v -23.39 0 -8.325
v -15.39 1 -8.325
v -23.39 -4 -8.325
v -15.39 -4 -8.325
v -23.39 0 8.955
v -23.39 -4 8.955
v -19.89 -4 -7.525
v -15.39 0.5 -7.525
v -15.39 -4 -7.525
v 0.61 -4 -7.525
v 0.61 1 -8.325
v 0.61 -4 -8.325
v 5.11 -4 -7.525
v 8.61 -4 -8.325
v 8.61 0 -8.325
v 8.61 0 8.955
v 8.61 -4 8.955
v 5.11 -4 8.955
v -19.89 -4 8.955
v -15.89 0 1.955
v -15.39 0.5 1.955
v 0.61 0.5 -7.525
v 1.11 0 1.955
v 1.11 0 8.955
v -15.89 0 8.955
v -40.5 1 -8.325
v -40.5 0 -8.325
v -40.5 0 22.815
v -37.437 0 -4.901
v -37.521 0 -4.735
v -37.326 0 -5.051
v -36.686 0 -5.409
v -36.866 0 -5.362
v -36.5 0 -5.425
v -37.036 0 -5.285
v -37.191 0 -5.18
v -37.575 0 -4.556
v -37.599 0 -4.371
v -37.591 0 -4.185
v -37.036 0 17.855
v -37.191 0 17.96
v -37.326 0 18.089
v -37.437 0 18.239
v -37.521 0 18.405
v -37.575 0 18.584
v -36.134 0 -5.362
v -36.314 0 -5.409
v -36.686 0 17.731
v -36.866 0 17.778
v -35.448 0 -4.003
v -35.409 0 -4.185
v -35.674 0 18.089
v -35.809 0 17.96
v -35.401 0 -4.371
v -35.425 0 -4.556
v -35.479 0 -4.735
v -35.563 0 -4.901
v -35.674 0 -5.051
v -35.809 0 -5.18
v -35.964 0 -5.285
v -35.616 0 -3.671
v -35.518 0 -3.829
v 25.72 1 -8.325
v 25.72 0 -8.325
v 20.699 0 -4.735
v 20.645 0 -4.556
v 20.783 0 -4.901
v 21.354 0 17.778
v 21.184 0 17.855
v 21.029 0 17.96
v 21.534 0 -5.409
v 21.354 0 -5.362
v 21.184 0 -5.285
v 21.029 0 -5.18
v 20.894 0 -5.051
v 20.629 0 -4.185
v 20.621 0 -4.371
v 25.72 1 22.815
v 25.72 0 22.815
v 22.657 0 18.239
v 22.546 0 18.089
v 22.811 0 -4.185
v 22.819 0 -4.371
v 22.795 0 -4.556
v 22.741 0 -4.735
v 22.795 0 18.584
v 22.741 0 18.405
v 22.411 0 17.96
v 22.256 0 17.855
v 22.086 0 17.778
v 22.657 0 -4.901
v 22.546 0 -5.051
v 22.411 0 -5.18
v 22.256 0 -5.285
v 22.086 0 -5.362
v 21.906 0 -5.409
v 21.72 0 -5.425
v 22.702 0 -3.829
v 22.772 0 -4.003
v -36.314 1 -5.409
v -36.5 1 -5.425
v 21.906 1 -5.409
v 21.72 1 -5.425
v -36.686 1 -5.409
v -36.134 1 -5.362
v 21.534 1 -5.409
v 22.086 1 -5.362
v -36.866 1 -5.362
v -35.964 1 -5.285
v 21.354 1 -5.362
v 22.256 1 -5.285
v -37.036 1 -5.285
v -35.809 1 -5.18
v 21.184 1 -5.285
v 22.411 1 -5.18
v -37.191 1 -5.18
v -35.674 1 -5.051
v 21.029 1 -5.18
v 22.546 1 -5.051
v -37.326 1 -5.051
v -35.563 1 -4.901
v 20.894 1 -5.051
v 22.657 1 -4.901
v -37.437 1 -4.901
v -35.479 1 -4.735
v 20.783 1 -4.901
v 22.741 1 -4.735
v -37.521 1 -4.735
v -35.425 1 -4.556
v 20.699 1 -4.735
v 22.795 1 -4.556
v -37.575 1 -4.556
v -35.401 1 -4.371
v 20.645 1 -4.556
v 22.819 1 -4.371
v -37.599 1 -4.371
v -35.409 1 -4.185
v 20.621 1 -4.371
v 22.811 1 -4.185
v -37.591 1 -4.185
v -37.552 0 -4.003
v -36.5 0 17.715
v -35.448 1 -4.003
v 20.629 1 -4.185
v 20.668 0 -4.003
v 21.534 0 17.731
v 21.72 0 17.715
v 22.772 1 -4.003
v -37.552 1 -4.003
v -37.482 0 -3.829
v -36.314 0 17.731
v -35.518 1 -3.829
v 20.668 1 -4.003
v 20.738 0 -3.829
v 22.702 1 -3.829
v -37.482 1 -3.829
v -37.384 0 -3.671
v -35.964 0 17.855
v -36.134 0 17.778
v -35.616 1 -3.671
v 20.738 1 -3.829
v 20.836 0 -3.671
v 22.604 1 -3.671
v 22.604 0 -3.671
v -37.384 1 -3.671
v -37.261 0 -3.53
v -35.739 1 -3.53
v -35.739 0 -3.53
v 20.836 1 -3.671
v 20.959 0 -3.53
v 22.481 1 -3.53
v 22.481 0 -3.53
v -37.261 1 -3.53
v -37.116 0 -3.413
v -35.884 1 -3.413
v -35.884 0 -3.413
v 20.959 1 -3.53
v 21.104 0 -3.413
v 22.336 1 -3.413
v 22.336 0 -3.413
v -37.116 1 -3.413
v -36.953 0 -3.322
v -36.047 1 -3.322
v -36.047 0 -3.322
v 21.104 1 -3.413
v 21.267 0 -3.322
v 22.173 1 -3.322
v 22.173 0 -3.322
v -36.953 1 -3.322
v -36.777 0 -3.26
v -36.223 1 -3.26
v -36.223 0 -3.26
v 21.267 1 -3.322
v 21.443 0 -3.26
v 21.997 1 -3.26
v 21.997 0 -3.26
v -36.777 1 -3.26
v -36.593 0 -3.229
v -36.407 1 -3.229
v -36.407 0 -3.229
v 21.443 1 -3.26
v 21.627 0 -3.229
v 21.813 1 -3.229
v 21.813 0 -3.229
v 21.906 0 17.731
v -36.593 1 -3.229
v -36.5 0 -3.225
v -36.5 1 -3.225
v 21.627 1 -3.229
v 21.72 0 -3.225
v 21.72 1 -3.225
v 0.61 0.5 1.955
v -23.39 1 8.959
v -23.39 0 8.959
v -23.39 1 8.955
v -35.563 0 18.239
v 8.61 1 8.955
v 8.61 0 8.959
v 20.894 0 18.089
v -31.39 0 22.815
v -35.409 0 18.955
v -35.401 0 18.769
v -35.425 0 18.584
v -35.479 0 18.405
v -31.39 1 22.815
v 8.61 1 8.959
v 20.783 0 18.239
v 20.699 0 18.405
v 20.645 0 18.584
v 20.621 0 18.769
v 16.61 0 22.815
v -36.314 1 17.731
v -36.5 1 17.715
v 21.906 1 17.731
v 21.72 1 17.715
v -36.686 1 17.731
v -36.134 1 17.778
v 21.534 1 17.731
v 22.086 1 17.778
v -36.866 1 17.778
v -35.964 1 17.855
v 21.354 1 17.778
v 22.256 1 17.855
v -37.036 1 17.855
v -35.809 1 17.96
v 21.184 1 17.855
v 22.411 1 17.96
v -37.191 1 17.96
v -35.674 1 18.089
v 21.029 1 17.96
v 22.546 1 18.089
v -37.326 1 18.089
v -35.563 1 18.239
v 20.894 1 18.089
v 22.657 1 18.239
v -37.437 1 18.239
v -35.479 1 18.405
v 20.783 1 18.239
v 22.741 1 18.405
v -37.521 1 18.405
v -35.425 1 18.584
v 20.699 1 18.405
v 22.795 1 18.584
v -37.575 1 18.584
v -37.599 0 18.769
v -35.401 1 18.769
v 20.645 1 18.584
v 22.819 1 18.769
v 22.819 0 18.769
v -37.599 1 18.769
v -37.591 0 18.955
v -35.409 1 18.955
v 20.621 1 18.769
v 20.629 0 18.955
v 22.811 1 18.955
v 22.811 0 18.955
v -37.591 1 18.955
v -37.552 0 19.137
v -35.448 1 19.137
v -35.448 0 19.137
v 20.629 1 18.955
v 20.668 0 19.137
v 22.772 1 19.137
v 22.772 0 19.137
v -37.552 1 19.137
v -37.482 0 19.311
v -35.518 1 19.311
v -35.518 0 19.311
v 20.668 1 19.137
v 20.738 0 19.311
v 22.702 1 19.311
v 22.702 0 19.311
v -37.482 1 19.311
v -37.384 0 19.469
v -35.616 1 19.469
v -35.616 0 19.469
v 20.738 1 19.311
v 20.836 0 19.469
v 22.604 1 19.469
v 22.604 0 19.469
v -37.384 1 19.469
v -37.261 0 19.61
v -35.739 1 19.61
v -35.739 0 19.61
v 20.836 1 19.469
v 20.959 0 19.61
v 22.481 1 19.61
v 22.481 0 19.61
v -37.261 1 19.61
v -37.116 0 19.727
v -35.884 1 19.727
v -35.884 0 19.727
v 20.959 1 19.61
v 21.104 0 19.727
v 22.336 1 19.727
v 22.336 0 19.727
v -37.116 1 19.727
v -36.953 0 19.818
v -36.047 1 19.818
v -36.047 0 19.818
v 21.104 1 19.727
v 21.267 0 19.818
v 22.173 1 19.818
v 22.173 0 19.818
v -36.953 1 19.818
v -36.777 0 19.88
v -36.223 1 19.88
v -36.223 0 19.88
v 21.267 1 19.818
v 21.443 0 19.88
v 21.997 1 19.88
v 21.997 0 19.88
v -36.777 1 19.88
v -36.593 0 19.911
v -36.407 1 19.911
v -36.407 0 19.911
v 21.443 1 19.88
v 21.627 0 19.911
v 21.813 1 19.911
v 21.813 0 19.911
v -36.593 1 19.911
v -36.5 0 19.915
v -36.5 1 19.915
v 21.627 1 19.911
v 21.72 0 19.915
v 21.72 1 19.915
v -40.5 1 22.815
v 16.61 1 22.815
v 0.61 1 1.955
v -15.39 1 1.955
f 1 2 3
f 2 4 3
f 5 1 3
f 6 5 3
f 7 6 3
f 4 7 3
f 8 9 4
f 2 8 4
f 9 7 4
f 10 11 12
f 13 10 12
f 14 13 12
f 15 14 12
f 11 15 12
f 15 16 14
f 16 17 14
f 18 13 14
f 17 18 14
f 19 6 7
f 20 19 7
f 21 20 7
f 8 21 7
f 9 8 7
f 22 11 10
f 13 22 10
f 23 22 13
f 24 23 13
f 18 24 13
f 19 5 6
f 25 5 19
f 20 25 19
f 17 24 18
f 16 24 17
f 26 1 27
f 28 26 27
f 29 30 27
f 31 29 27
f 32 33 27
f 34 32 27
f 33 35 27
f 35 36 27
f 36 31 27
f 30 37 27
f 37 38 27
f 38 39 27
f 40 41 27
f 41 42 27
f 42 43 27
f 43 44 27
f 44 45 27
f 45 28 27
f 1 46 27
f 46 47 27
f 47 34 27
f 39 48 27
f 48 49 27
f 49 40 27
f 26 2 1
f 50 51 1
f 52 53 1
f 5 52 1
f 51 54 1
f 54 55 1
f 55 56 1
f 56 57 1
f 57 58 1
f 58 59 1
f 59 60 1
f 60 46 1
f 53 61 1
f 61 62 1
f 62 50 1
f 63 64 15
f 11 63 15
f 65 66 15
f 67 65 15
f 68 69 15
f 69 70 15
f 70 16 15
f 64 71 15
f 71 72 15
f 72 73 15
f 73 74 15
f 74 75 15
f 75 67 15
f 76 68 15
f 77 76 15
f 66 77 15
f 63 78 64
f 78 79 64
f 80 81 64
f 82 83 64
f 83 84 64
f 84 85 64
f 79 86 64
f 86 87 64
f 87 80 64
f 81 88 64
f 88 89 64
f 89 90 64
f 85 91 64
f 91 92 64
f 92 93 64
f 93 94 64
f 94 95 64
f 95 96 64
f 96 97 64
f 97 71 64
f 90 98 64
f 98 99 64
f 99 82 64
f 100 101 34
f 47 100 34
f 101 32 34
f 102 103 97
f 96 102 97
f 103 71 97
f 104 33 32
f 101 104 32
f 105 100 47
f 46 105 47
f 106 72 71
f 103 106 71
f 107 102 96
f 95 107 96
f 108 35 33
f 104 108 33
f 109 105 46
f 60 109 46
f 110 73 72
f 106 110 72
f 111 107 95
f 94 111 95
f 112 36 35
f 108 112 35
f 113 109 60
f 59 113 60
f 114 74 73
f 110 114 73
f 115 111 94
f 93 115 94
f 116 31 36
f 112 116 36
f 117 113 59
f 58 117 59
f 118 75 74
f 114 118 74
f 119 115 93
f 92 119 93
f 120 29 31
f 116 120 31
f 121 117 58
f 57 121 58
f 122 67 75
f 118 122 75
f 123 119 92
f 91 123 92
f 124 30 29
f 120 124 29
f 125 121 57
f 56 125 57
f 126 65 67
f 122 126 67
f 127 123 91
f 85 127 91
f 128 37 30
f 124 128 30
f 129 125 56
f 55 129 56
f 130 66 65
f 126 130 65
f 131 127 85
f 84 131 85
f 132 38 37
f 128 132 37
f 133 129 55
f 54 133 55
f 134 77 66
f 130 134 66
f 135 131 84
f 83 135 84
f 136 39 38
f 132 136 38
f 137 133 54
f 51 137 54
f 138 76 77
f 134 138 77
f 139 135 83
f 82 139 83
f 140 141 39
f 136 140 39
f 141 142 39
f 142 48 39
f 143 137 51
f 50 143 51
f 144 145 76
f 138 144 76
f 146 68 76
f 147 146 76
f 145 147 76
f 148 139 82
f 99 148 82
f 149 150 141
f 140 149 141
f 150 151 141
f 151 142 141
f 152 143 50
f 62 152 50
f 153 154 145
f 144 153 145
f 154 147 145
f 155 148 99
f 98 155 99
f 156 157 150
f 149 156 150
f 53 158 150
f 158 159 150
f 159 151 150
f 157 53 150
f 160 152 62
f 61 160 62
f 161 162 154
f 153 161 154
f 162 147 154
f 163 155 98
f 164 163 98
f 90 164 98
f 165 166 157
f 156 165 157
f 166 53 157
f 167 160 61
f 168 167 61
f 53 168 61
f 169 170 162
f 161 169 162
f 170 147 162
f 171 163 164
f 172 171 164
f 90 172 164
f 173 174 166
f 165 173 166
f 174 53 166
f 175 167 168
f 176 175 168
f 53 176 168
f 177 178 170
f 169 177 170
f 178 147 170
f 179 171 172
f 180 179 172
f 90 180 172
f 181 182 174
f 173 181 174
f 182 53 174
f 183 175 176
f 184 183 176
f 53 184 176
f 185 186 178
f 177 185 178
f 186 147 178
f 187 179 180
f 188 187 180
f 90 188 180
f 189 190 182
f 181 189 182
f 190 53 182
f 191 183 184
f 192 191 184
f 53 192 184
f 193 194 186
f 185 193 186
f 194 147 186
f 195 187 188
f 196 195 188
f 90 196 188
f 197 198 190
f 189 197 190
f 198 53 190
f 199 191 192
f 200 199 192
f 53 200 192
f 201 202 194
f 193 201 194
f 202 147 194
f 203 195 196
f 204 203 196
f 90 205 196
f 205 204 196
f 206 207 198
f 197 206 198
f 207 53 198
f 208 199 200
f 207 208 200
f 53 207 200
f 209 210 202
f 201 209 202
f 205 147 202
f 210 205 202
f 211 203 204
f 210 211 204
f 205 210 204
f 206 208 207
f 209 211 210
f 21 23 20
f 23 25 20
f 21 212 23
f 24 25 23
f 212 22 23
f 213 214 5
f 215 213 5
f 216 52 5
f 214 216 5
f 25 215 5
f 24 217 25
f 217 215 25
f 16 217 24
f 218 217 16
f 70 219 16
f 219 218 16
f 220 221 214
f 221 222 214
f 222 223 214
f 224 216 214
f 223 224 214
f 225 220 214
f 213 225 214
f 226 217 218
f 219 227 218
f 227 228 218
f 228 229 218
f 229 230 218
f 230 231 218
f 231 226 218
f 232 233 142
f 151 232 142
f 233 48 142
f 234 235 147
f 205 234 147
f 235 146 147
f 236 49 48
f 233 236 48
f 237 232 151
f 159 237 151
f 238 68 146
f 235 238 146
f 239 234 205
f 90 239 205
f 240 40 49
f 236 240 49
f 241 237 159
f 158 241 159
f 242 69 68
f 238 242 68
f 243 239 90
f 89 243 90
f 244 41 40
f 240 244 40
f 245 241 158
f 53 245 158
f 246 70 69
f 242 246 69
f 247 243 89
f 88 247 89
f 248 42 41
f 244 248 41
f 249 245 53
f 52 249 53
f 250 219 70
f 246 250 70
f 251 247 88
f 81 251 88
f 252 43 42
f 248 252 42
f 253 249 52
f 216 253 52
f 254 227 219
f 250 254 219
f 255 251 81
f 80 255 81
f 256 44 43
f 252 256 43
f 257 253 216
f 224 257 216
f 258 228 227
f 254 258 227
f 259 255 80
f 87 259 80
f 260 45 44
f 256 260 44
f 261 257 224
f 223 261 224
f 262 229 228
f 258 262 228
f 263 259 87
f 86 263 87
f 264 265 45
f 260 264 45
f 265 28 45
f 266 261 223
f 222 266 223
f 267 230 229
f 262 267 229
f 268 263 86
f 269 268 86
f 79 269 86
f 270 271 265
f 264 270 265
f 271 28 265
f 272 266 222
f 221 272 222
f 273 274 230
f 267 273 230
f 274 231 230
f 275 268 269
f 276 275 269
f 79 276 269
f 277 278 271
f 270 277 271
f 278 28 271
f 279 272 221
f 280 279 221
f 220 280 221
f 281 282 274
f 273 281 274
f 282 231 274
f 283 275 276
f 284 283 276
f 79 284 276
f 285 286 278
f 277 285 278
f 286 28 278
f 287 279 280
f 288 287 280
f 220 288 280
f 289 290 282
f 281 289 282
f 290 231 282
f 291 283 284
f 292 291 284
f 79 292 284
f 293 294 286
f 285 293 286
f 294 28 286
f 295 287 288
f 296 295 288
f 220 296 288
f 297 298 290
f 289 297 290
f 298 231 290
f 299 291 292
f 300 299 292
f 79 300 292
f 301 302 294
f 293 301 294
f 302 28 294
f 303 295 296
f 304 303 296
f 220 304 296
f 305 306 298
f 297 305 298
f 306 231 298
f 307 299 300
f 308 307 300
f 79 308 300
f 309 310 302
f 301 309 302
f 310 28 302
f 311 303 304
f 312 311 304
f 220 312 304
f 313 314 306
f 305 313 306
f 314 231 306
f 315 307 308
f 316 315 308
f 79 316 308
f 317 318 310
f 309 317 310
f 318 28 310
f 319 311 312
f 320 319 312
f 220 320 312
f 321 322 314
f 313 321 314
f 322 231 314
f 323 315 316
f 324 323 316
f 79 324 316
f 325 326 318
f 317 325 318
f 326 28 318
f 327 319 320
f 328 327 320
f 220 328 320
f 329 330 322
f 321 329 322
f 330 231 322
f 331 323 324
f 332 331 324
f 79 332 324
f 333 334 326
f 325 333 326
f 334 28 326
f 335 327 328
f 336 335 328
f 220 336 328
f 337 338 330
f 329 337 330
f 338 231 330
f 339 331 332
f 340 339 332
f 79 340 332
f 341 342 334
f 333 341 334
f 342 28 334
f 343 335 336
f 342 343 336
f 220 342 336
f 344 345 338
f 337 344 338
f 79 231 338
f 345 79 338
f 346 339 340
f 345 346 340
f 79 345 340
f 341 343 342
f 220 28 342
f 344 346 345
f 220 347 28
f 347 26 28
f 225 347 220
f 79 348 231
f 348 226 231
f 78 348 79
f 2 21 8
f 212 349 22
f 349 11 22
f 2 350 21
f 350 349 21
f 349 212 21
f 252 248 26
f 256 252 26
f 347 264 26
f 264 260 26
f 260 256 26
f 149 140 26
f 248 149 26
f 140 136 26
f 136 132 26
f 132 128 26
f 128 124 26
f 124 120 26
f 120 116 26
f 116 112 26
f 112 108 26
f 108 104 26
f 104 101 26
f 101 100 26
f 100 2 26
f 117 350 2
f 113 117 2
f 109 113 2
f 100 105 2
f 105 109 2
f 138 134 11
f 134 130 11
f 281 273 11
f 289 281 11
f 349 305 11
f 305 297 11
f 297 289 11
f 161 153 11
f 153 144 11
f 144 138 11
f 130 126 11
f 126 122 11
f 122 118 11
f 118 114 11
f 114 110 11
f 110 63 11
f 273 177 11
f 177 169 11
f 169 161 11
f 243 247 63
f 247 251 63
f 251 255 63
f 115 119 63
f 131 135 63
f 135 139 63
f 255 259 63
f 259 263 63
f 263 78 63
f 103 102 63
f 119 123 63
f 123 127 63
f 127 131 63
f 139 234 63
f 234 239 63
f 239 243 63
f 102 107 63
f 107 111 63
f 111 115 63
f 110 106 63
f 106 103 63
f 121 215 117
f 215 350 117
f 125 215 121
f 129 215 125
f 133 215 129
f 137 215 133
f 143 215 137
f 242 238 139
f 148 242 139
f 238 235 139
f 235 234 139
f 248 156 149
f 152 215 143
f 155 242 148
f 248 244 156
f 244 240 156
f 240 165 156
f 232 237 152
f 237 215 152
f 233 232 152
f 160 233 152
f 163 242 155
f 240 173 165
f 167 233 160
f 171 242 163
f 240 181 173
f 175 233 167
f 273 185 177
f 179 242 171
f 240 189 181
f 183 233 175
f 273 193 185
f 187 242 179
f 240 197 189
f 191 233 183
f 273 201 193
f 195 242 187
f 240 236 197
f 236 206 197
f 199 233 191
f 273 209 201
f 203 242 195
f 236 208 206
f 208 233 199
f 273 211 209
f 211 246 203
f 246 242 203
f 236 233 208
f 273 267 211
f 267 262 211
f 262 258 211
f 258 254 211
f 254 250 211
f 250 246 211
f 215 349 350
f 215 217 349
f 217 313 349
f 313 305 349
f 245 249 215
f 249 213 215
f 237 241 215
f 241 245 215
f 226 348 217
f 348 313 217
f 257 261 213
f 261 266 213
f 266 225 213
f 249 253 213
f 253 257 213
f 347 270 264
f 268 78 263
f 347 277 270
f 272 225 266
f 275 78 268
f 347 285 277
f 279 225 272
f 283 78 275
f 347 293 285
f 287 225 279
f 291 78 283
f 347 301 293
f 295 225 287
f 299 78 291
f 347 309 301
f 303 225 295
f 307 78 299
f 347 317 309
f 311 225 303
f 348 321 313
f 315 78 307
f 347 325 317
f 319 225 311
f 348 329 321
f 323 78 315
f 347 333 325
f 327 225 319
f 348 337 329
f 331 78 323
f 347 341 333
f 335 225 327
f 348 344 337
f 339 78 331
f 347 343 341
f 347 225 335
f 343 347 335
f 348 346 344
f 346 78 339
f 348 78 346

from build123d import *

# Parameters (mm, degrees)
SKETCH1_W             = 17.11
SKETCH1_H             = 31.14
SKETCH1_R             = 1.1
BOSS_EXTRUDE1_DEPTH   = 1
BOSS_EXTRUDE1_2_DEPTH = 1
SKETCH1_W_2           = 16
SKETCH1_H_2           = 7
BOSS_EXTRUDE1_3_DEPTH = 1
BOSS_EXTRUDE2_START   = 1
SKETCH1_3_W           = 8
SKETCH1_3_H           = 16.48
BOSS_EXTRUDE2_DEPTH   = 5
CHAMFER1_SIZE         = 4.5
CHAMFER2_SIZE         = 4.5
BOSS_EXTRUDE3_START   = 1
SKETCH1_4_W           = 8
SKETCH1_4_H           = 0.8
BOSS_EXTRUDE3_DEPTH   = 5
CHAMFER3_SIZE         = 8
CHAMFER3_SIZE2        = 13.856406461
CHAMFER4_SIZE         = 8
CHAMFER4_SIZE2        = 13.856406461


with BuildPart() as part:
    # Sketch1 → Boss-Extrude1 (new body)
    with BuildSketch(Plane(origin=(0, 0, 0), x_dir=(1, 0, 0), z_dir=(0, 1, 0))):
        with Locations((-31.94497183, -7.245370105)):
            Rectangle(SKETCH1_W, SKETCH1_H)
        with Locations((-36.49997183, -18.815370105)):
            Circle(SKETCH1_R, mode=Mode.SUBTRACT)
        with Locations((-36.49997183, 4.324629895)):
            Circle(SKETCH1_R, mode=Mode.SUBTRACT)
    extrude(amount=BOSS_EXTRUDE1_DEPTH)



with BuildPart() as body_2:
    # Sketch1 → Boss-Extrude1 2 (new body)
    with BuildSketch(Plane(origin=(0, 0, 0), x_dir=(1, 0, 0), z_dir=(0, 1, 0))):
        with Locations((17.16502817, -7.245370105)):
            Rectangle(SKETCH1_W, SKETCH1_H)
        with Locations((21.72002817, 4.324629895)):
            Circle(SKETCH1_R, mode=Mode.SUBTRACT)
        with Locations((21.72002817, -18.815370105)):
            Circle(SKETCH1_R, mode=Mode.SUBTRACT)
    extrude(amount=BOSS_EXTRUDE1_2_DEPTH)


with BuildPart() as body_3:
    # Sketch1 → Boss-Extrude1 3 (new body)
    with BuildSketch(Plane(origin=(0, 0, 0), x_dir=(1, 0, 0), z_dir=(0, 1, 0))):
        with Locations((-7.38997183, -5.455370105)):
            Rectangle(SKETCH1_W_2, SKETCH1_H_2)
    extrude(amount=BOSS_EXTRUDE1_3_DEPTH)


with BuildPart() as part_1:
    add(part.part)

    add(body_2.part)  # Boss-Extrude2 merges body 2

    add(body_3.part)  # Boss-Extrude2 merges body 3
    # Sketch1<3> → Boss-Extrude2 (add)
    with BuildSketch(Plane(origin=(0, 0, 0), x_dir=(1, 0, 0), z_dir=(0, 1, 0)).offset(BOSS_EXTRUDE2_START)):
        with Locations((-19.38997183, -0.715370105)):
            Rectangle(SKETCH1_3_W, SKETCH1_3_H)
        with Locations((4.61002817, -0.715370105)):
            Rectangle(SKETCH1_3_W, SKETCH1_3_H)
    extrude(amount=-BOSS_EXTRUDE2_DEPTH)

    # Chamfer1
    chamfer1_edges = [part_1.edges().sort_by_distance(p)[0] for p in [
        (0.61002817, -4, 0.715370105),
    ]]
    chamfer(chamfer1_edges, length=CHAMFER1_SIZE)

    # Chamfer2
    chamfer2_edges = [part_1.edges().sort_by_distance(p)[0] for p in [
        (-15.38997183, -4, 0.715370105),
    ]]
    chamfer(chamfer2_edges, length=CHAMFER2_SIZE)

    # Sketch1<4> → Boss-Extrude3 (add)
    with BuildSketch(Plane(origin=(0, 0, 0), x_dir=(1, 0, 0), z_dir=(0, 1, 0)).offset(BOSS_EXTRUDE3_START)):
        with Locations((-19.38997183, 7.924629895)):
            Rectangle(SKETCH1_4_W, SKETCH1_4_H)
        with Locations((4.61002817, 7.924629895)):
            Rectangle(SKETCH1_4_W, SKETCH1_4_H)
    extrude(amount=-BOSS_EXTRUDE3_DEPTH)

    # Chamfer3
    chamfer3_edges = [part_1.edges().sort_by_distance(p)[0] for p in [
        (-23.38997183, 0.5, 22.815370105),
    ]]
    chamfer3_side = [part_1.faces().sort_by_distance(p)[0] for p in [
        (-31.94497183, 0.5, 22.815370105),
    ]]
    chamfer(chamfer3_edges, length=CHAMFER3_SIZE, length2=CHAMFER3_SIZE2, reference=chamfer3_side[0])

    # Chamfer4
    chamfer4_edges = [part_1.edges().sort_by_distance(p)[0] for p in [
        (8.61002817, 0.5, 22.815370105),
    ]]
    chamfer4_side = [part_1.faces().sort_by_distance(p)[0] for p in [
        (17.16502817, 0.5, 22.815370105),
    ]]
    chamfer(chamfer4_edges, length=CHAMFER4_SIZE, length2=CHAMFER4_SIZE2, reference=chamfer4_side[0])


solid = part_1.part
